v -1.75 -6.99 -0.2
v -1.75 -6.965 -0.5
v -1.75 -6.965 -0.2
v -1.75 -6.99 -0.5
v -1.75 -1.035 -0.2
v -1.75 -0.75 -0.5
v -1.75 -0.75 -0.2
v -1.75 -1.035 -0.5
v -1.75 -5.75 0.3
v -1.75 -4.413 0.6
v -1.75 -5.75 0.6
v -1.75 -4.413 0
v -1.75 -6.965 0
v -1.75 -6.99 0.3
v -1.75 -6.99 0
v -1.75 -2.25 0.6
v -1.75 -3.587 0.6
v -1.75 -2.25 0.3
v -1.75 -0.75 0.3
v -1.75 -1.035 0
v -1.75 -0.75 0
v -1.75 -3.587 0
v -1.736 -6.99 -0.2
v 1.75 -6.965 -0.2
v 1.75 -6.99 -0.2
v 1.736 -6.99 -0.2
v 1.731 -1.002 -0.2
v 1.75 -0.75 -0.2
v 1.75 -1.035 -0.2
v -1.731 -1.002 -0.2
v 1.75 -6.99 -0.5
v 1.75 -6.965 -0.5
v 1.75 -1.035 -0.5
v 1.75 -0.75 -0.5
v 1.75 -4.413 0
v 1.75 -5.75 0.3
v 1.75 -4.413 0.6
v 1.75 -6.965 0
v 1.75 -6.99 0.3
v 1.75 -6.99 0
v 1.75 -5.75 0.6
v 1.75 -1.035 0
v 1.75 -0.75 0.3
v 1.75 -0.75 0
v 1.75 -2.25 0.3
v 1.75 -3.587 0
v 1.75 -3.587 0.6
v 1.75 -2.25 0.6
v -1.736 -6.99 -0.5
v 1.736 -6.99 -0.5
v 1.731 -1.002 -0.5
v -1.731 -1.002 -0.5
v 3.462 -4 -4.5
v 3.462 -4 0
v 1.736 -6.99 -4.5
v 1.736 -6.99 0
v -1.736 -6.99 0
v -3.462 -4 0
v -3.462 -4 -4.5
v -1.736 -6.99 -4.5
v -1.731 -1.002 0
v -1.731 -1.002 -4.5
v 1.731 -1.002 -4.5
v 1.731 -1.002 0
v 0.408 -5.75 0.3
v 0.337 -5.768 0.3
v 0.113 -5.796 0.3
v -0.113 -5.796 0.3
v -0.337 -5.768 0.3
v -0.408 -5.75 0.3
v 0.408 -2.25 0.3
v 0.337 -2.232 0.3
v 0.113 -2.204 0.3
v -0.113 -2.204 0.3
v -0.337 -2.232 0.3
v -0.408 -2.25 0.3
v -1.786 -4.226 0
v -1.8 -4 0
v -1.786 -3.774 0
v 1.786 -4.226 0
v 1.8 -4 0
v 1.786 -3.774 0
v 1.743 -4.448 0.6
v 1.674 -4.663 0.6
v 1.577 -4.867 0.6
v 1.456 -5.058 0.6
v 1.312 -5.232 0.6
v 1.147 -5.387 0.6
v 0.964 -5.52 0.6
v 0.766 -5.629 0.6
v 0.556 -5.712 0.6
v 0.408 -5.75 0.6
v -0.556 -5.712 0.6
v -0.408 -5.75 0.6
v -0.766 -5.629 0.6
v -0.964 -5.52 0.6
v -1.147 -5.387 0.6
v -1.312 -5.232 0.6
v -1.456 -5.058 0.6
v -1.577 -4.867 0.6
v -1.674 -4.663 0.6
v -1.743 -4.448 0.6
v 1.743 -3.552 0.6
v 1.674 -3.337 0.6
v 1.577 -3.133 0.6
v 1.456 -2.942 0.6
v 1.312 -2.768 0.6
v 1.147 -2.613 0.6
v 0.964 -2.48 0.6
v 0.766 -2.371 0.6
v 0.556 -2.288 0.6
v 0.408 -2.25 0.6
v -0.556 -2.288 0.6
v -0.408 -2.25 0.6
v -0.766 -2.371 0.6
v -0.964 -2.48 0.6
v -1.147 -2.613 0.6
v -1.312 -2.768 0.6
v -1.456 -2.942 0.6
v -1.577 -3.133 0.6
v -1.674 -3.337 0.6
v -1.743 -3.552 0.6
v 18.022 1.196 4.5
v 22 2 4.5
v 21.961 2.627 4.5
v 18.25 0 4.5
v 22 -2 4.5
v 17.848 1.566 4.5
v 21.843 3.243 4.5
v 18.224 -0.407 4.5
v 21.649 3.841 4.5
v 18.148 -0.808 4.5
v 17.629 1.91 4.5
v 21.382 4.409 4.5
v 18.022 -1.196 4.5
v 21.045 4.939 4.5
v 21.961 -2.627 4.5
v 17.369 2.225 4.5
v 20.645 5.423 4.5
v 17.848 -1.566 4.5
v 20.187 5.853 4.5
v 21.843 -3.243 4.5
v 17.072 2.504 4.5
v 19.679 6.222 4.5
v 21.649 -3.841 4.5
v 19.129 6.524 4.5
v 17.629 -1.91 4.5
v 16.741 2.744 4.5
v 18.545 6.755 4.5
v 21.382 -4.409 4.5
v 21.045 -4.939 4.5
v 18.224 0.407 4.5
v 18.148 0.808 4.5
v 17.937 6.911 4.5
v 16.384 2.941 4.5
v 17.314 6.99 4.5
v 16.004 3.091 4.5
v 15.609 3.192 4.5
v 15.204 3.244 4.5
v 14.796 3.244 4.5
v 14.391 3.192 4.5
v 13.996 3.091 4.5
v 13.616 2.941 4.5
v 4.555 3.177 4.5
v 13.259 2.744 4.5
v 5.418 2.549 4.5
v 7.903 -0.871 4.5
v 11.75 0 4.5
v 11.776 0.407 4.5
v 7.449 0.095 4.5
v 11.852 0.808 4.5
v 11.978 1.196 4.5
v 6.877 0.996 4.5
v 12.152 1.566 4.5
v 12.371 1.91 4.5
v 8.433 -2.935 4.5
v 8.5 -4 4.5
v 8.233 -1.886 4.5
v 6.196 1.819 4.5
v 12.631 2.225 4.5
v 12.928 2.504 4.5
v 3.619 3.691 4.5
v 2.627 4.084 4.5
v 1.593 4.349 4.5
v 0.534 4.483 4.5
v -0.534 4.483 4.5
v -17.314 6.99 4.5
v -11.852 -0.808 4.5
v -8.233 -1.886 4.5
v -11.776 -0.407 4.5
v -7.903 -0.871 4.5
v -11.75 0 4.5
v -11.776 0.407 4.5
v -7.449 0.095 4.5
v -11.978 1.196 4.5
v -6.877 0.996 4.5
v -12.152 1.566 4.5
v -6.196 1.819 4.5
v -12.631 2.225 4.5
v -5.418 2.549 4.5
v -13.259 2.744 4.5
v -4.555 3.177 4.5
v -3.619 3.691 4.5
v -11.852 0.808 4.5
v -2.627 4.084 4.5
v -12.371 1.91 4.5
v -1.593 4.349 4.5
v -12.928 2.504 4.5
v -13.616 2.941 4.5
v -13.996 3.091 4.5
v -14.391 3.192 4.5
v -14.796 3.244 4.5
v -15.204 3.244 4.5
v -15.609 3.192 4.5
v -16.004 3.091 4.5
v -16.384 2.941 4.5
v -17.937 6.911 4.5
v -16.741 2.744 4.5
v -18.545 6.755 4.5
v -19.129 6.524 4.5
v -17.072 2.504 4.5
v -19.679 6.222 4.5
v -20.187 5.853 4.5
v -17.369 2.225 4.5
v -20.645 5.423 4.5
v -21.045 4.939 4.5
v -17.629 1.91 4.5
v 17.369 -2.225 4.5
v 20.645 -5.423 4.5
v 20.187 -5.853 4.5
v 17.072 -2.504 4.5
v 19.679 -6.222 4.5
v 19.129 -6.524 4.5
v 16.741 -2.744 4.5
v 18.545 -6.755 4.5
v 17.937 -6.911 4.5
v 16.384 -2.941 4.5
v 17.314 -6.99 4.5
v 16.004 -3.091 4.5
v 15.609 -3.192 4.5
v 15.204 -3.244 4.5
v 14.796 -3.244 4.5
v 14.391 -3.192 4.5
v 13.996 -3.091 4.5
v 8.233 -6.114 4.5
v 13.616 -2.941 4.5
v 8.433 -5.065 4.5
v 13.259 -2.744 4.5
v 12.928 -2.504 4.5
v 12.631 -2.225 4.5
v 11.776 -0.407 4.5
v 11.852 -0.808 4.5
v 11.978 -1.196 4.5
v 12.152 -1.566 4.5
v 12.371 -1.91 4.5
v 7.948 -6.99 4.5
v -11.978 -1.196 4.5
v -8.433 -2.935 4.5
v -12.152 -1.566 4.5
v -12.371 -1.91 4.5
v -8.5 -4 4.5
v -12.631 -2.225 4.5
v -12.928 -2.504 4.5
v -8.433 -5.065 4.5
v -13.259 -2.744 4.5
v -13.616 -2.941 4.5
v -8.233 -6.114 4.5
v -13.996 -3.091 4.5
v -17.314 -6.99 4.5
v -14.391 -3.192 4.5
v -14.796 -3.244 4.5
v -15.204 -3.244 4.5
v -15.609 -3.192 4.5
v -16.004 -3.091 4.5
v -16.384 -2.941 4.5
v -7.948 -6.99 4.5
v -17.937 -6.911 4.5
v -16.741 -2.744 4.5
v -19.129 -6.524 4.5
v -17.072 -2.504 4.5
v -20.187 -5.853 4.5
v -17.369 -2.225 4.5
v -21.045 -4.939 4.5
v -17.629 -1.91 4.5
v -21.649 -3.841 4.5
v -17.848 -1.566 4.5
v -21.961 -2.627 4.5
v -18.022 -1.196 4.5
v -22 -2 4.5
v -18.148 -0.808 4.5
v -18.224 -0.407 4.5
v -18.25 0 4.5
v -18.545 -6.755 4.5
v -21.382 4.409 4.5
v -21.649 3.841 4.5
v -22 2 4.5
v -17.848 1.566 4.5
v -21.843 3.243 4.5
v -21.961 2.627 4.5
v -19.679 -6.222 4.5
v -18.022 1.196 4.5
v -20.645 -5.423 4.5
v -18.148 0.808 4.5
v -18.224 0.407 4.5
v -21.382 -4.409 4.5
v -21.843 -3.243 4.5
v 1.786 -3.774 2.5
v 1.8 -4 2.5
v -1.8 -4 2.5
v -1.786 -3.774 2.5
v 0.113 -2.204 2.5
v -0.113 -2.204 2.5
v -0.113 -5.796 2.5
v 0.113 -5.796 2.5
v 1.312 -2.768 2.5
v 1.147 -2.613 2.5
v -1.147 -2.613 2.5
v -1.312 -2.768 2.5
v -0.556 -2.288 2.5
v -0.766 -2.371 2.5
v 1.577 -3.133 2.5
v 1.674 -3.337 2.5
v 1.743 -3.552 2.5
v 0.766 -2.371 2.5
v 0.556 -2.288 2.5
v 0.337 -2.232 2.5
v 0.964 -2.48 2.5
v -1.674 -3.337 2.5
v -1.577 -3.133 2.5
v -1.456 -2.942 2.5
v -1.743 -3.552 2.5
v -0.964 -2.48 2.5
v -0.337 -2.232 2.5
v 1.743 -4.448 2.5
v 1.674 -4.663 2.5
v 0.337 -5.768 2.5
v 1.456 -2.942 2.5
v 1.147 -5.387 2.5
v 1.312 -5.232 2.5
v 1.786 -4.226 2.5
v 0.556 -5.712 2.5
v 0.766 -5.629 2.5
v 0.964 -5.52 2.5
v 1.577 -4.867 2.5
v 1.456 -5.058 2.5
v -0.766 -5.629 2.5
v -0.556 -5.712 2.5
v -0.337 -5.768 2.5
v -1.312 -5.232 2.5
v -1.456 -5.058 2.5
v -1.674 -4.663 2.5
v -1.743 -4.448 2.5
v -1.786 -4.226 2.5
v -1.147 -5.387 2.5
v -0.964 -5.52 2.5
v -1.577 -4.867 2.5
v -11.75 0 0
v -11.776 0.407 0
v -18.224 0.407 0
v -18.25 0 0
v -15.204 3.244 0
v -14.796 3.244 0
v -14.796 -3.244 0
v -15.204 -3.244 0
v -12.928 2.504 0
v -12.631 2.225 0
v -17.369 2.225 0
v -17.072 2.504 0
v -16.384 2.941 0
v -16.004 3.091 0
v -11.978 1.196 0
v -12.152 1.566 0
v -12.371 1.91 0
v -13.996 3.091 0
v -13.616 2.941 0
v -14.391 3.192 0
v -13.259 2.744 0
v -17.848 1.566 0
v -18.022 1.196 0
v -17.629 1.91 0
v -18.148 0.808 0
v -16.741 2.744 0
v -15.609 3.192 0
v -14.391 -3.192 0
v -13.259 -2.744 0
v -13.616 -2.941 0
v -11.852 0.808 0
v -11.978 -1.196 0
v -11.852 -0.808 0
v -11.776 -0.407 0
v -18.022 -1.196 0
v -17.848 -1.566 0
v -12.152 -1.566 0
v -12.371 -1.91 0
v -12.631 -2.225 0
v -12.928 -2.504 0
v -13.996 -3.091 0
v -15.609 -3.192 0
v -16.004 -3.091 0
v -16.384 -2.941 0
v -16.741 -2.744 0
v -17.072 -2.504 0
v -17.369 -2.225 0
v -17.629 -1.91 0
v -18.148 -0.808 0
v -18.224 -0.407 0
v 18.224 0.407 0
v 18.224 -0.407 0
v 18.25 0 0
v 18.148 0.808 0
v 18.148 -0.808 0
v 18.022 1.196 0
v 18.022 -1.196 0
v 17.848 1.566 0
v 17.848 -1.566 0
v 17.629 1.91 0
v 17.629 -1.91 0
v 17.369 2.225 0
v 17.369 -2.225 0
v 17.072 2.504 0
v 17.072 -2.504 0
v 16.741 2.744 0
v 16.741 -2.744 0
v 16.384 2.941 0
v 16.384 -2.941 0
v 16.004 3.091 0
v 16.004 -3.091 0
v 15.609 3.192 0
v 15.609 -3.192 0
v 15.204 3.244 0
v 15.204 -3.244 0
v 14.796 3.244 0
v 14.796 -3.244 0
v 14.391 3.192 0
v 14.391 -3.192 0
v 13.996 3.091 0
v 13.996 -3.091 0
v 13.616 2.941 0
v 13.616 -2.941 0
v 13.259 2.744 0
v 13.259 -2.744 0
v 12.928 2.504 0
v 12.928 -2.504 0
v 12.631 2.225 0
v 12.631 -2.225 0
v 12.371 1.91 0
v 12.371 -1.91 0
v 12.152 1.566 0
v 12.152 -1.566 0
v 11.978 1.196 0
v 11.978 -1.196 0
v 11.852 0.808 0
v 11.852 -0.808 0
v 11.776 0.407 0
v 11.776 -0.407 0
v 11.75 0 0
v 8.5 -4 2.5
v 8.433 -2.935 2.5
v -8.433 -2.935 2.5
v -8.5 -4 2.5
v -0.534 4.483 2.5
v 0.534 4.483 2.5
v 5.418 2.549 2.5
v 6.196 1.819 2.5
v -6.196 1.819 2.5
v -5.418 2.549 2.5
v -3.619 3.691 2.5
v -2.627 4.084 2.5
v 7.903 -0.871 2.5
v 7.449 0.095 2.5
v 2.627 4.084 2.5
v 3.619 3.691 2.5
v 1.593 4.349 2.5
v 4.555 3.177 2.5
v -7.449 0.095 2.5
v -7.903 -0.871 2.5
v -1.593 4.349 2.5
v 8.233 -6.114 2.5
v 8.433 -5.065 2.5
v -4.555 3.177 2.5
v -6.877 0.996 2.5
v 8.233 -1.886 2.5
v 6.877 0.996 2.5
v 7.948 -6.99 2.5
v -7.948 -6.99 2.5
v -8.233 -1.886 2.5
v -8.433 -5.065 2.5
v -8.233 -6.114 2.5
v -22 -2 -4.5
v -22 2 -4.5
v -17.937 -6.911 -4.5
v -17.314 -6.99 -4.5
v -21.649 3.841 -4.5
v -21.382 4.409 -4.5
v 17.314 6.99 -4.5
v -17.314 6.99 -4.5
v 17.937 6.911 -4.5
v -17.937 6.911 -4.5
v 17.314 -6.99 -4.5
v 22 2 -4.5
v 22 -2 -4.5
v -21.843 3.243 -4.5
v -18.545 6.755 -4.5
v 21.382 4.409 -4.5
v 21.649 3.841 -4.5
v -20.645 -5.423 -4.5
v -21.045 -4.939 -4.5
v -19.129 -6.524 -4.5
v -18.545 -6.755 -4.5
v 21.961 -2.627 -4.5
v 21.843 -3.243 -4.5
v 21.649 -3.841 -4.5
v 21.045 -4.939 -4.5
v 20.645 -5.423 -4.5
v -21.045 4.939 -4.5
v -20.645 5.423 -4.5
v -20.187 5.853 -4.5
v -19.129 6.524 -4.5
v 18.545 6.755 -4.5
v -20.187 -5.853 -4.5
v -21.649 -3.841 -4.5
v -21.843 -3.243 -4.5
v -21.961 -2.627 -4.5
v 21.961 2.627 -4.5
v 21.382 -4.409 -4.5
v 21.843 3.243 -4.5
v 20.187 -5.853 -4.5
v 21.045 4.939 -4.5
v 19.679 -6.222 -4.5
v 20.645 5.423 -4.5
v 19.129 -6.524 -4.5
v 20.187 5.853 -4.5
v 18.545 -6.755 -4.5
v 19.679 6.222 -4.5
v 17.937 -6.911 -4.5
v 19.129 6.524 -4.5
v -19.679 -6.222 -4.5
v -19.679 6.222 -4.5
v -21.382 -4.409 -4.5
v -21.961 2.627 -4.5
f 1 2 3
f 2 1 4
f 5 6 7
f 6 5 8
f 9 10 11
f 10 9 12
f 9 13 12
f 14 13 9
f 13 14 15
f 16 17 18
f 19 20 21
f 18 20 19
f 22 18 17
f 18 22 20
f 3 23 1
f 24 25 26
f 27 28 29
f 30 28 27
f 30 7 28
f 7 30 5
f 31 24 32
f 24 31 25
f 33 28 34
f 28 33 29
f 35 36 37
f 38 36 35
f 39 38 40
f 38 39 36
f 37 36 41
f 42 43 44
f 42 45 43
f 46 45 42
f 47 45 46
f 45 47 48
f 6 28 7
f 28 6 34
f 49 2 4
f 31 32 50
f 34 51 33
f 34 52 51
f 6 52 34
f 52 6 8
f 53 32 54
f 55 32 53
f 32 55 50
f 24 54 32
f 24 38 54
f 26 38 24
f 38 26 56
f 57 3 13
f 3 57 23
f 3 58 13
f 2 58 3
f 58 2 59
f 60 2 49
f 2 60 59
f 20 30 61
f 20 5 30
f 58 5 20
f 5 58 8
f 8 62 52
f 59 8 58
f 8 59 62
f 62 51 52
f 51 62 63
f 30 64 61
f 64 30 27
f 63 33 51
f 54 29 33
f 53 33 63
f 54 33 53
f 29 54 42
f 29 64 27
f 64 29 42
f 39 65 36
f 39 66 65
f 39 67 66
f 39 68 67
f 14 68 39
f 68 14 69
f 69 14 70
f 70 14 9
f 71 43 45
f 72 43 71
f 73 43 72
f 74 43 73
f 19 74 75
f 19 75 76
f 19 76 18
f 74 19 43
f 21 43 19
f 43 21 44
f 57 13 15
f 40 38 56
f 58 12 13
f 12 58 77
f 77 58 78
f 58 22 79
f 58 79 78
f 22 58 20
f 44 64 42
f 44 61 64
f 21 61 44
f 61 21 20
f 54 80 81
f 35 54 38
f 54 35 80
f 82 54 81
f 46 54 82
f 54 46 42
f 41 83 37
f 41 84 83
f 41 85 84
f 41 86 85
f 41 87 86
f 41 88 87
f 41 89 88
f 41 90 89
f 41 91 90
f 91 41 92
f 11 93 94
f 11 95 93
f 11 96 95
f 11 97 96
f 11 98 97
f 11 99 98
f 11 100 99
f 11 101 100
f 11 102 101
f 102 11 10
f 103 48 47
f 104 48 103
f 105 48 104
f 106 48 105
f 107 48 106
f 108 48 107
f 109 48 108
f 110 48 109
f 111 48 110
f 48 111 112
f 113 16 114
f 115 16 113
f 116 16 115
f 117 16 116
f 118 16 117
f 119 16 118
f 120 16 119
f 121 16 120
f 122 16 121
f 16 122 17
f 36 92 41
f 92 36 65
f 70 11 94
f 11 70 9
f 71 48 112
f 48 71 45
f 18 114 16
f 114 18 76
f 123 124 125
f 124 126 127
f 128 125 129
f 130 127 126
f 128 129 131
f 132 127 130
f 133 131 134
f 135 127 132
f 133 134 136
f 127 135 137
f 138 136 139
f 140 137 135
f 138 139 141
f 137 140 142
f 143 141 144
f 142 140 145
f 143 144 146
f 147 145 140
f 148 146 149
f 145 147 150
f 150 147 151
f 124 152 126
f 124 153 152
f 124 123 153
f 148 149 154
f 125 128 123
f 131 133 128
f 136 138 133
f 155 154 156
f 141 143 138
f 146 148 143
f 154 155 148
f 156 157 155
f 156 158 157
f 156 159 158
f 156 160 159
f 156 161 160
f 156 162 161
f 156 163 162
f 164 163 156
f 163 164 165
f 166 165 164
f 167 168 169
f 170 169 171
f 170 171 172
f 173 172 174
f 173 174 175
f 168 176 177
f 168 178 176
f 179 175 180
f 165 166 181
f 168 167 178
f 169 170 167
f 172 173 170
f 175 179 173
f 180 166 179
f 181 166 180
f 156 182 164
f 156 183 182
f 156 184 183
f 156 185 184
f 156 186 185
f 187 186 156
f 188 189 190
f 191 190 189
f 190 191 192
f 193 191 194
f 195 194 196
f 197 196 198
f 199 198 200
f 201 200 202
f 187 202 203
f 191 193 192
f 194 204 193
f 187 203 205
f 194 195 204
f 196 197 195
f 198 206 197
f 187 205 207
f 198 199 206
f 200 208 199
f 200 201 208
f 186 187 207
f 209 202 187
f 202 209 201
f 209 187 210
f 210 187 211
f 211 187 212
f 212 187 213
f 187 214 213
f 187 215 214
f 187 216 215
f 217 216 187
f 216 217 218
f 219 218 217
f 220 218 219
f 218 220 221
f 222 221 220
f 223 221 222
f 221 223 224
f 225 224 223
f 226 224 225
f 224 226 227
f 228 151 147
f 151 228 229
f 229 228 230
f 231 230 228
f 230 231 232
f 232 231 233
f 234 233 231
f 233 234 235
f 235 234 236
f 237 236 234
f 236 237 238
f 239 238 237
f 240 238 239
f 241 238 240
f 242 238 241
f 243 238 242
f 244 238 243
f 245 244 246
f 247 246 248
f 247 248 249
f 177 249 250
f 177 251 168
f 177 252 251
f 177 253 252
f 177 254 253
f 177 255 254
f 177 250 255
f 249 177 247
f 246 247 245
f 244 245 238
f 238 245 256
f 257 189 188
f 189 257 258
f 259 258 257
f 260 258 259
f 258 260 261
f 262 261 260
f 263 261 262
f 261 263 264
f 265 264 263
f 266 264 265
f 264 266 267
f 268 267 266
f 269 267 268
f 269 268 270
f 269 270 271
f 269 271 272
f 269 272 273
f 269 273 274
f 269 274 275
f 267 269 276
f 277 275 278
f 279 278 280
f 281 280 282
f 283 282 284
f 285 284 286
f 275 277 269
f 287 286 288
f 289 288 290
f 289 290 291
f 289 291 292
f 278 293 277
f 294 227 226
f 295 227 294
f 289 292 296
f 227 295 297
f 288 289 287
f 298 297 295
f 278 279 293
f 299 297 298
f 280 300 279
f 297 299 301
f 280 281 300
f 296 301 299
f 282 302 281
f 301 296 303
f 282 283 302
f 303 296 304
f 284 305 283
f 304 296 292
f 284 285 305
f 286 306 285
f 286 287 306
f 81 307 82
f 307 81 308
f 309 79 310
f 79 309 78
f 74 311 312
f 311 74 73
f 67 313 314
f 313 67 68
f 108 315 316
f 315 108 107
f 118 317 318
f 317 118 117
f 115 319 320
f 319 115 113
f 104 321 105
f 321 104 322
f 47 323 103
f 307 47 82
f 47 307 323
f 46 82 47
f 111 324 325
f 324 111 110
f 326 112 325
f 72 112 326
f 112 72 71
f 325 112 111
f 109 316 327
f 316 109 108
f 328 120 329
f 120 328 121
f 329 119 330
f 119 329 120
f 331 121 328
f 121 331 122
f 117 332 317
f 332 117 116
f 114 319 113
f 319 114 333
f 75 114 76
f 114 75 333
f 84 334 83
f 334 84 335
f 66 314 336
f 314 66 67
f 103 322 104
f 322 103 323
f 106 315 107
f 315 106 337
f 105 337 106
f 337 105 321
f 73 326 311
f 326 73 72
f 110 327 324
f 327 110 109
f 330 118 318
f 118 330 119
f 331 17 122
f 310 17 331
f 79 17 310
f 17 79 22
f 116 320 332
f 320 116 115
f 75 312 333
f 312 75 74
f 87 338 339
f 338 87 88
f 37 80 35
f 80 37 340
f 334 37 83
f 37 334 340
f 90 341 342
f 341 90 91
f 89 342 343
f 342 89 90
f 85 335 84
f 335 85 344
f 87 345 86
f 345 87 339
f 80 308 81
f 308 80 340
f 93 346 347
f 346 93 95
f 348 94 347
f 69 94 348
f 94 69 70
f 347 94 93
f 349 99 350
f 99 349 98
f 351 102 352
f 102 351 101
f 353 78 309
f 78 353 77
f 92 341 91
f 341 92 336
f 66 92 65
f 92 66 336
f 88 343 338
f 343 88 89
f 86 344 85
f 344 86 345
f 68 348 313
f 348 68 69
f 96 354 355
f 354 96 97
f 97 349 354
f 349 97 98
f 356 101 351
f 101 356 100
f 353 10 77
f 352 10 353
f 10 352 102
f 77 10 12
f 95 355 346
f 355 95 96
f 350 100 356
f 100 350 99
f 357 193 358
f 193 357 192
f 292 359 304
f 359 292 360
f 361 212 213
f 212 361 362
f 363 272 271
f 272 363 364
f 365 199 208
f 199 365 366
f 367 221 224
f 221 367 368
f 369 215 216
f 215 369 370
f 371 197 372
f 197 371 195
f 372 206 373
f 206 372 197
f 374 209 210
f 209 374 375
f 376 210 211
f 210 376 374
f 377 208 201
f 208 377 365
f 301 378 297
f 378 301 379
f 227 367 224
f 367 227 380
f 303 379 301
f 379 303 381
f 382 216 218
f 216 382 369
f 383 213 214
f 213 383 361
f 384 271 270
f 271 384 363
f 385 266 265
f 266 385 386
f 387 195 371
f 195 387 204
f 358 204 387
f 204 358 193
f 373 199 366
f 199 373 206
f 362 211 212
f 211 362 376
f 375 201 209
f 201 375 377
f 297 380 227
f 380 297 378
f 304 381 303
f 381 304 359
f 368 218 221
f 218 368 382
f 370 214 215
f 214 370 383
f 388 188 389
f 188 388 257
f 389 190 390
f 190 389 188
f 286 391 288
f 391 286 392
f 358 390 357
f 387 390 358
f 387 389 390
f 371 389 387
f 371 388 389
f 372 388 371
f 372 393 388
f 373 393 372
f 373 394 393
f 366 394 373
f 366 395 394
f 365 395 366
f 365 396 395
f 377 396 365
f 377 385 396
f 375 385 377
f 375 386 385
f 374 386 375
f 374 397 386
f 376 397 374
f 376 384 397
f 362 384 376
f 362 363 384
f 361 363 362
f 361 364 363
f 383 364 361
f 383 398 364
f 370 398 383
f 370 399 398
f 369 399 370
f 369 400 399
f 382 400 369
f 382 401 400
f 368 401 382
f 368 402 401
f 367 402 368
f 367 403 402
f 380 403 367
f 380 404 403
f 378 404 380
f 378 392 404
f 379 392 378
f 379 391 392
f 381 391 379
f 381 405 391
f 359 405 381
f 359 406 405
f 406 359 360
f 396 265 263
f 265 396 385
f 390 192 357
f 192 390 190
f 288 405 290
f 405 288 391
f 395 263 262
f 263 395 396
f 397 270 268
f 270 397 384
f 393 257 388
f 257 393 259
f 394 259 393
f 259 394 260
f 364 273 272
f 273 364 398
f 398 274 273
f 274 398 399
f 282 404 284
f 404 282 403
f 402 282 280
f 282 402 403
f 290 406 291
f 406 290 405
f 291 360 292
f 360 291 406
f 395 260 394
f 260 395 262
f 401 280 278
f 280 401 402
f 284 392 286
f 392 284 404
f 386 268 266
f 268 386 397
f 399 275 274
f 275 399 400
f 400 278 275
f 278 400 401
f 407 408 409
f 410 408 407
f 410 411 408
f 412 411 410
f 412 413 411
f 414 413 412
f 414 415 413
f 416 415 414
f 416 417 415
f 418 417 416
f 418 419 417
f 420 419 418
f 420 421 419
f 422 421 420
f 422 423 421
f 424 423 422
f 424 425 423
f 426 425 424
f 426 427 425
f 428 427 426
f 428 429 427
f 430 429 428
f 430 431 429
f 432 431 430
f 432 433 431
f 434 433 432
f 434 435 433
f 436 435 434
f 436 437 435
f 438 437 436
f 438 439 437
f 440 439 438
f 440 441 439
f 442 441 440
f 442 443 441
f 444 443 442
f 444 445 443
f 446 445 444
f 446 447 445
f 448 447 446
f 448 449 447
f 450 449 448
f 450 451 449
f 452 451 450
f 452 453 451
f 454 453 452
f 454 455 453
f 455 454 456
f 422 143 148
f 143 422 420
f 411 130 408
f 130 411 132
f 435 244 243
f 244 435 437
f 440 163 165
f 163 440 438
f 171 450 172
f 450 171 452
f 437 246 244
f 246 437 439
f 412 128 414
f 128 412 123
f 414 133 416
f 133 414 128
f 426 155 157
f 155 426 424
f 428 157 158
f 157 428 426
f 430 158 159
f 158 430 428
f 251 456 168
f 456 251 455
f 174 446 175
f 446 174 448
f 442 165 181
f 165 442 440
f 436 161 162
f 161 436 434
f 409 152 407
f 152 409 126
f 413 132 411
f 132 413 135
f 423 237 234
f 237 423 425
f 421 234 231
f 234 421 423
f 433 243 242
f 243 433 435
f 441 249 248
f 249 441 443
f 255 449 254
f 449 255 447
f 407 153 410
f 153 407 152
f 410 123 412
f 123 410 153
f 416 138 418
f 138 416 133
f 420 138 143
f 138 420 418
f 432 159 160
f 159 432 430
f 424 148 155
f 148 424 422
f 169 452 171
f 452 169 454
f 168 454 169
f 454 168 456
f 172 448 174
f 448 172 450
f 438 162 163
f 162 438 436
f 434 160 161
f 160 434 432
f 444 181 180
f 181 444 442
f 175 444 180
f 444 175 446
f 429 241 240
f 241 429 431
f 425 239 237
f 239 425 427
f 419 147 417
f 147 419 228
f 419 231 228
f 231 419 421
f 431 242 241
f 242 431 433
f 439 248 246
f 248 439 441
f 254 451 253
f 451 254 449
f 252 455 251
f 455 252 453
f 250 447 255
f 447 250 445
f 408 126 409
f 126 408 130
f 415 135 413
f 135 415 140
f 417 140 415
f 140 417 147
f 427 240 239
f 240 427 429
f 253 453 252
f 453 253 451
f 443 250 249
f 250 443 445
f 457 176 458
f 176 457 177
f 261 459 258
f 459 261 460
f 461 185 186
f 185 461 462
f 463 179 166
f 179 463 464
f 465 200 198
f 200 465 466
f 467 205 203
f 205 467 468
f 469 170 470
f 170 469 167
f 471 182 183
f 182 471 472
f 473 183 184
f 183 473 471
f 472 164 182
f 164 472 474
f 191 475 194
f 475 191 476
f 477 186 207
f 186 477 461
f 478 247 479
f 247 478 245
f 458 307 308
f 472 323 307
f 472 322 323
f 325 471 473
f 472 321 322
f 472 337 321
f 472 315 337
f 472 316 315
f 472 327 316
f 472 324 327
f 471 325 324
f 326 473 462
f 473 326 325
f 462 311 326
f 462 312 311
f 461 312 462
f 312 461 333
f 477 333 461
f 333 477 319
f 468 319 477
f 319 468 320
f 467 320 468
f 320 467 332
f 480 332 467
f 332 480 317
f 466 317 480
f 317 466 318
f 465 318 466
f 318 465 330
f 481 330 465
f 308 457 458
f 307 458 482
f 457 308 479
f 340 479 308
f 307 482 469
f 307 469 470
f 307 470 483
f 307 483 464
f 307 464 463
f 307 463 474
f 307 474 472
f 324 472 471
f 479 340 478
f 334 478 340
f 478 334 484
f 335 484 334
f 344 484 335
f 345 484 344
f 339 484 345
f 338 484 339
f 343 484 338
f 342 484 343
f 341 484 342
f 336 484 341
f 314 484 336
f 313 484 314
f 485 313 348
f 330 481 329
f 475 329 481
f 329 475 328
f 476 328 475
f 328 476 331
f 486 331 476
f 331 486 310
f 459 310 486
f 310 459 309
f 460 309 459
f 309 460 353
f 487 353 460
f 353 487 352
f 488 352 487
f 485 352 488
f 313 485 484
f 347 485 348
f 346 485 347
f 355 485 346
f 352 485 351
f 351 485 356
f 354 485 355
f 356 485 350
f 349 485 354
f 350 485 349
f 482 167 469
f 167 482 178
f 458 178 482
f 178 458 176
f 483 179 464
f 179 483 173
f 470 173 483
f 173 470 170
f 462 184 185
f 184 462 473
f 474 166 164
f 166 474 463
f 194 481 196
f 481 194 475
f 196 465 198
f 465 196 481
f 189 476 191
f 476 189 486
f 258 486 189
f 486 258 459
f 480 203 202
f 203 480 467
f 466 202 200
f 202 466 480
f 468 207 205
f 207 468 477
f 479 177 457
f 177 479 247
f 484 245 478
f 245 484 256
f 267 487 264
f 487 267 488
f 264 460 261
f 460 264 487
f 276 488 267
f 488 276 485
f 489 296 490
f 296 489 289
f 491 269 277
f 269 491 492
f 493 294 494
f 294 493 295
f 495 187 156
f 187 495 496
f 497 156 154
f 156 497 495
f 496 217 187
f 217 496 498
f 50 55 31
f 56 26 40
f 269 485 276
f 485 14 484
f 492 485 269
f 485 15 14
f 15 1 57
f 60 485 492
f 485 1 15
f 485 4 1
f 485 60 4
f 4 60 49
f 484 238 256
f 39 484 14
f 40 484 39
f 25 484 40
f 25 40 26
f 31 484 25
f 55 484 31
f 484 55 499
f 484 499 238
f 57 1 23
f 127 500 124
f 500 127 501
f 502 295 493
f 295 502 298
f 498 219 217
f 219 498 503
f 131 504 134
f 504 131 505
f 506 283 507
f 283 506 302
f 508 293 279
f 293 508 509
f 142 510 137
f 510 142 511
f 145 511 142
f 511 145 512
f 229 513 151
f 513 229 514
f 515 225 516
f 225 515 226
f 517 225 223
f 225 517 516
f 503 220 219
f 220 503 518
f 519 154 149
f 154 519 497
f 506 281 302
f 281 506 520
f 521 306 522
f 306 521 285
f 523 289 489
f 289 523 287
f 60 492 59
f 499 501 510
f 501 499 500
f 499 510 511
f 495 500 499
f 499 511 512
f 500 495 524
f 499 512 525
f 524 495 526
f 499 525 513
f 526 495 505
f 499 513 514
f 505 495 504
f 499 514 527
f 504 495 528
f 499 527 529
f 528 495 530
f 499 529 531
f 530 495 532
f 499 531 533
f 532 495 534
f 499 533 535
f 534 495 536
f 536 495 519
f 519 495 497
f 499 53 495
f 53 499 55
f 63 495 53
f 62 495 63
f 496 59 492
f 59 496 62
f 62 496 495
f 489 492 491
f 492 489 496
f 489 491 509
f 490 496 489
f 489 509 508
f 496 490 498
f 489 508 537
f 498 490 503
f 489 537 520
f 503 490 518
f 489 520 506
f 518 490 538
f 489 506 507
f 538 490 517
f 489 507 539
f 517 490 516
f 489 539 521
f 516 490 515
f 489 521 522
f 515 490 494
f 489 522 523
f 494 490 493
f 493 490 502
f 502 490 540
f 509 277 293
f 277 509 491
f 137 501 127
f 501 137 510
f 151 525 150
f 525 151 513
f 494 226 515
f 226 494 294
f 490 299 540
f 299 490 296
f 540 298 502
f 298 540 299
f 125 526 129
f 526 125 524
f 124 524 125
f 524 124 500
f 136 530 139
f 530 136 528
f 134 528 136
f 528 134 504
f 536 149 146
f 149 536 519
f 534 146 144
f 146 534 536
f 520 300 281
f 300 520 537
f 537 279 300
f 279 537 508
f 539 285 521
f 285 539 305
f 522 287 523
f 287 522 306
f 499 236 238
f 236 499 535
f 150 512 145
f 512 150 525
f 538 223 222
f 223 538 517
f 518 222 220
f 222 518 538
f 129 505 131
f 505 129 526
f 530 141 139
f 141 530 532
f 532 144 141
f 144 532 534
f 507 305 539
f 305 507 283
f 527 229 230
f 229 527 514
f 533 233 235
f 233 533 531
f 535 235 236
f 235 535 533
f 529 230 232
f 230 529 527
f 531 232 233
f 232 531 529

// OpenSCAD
$fn = 50;


difference() {
	union() {
		translate(v = [0, 0, -4.5000000000]) {
			hull() {
				translate(v = [-17.0000000000, 2.0000000000, 0]) {
					cylinder(h = 9, r = 5);
				}
				translate(v = [17.0000000000, 2.0000000000, 0]) {
					cylinder(h = 9, r = 5);
				}
				translate(v = [-17.0000000000, -2.0000000000, 0]) {
					cylinder(h = 9, r = 5);
				}
				translate(v = [17.0000000000, -2.0000000000, 0]) {
					cylinder(h = 9, r = 5);
				}
			}
		}
	}
	union() {
		translate(v = [0, -4, 4.5000000000]) {
			rotate(a = [0, 0, 0]) {
				difference() {
					union() {
						translate(v = [0, 0, -5.0000000000]) {
							rotate(a = [0, 0, 0]) {
								difference() {
									union() {
										translate(v = [-1.7500000000, -3.2500000000, -250.3000000000]) {
											cube(size = [3.5000000000, 6.5000000000, 0.3000000000]);
										}
										translate(v = [-1.7500000000, -1.7500000000, -250.6000000000]) {
											cube(size = [3.5000000000, 3.5000000000, 0.3000000000]);
										}
										translate(v = [-1.7500000000, -3.2500000000, 0]) {
											cube(size = [3.5000000000, 6.5000000000, 0.3000000000]);
										}
										translate(v = [-1.7500000000, -1.7500000000, 0.3000000000]) {
											cube(size = [3.5000000000, 3.5000000000, 0.3000000000]);
										}
										translate(v = [0, 0, -250]) {
											linear_extrude(height = 250) {
												polygon(points = [[3.4620000000, 0.0000000000], [1.7310000000, 2.9981799479], [-1.7310000000, 2.9981799479], [-3.4620000000, 0.0000000000], [-1.7310000000, -2.9981799479], [1.7310000000, -2.9981799479]]);
											}
										}
										translate(v = [-1.7500000000, -3.2500000000, -250.3000000000]) {
											cube(size = [3.5000000000, 6.5000000000, 0.3000000000]);
										}
										translate(v = [-1.7500000000, -1.7500000000, -250.6000000000]) {
											cube(size = [3.5000000000, 3.5000000000, 0.3000000000]);
										}
										translate(v = [-1.7500000000, -3.2500000000, 0]) {
											cube(size = [3.5000000000, 6.5000000000, 0.3000000000]);
										}
										translate(v = [-1.7500000000, -1.7500000000, 0.3000000000]) {
											cube(size = [3.5000000000, 3.5000000000, 0.3000000000]);
										}
										translate(v = [-1.7500000000, -3.2500000000, -250.3000000000]) {
											cube(size = [3.5000000000, 6.5000000000, 0.3000000000]);
										}
										translate(v = [-1.7500000000, -1.7500000000, -250.6000000000]) {
											cube(size = [3.5000000000, 3.5000000000, 0.3000000000]);
										}
										translate(v = [-1.7500000000, -3.2500000000, 0]) {
											cube(size = [3.5000000000, 6.5000000000, 0.3000000000]);
										}
										translate(v = [-1.7500000000, -1.7500000000, 0.3000000000]) {
											cube(size = [3.5000000000, 3.5000000000, 0.3000000000]);
										}
									}
									union();
								}
							}
						}
						translate(v = [0, 0, -4.5000000000]) {
							rotate(a = [0, 0, 0]) {
								difference() {
									union() {
										translate(v = [-1.7500000000, -3.2500000000, -250.3000000000]) {
											cube(size = [3.5000000000, 6.5000000000, 0.3000000000]);
										}
										translate(v = [-1.7500000000, -1.7500000000, -250.6000000000]) {
											cube(size = [3.5000000000, 3.5000000000, 0.3000000000]);
										}
										translate(v = [-1.7500000000, -3.2500000000, 0]) {
											cube(size = [3.5000000000, 6.5000000000, 0.3000000000]);
										}
										translate(v = [-1.7500000000, -1.7500000000, 0.3000000000]) {
											cube(size = [3.5000000000, 3.5000000000, 0.3000000000]);
										}
										translate(v = [0, 0, -250]) {
											linear_extrude(height = 250) {
												polygon(points = [[3.4620000000, 0.0000000000], [1.7310000000, 2.9981799479], [-1.7310000000, 2.9981799479], [-3.4620000000, 0.0000000000], [-1.7310000000, -2.9981799479], [1.7310000000, -2.9981799479]]);
											}
										}
										translate(v = [-1.7500000000, -3.2500000000, -250.3000000000]) {
											cube(size = [3.5000000000, 6.5000000000, 0.3000000000]);
										}
										translate(v = [-1.7500000000, -1.7500000000, -250.6000000000]) {
											cube(size = [3.5000000000, 3.5000000000, 0.3000000000]);
										}
										translate(v = [-1.7500000000, -3.2500000000, 0]) {
											cube(size = [3.5000000000, 6.5000000000, 0.3000000000]);
										}
										translate(v = [-1.7500000000, -1.7500000000, 0.3000000000]) {
											cube(size = [3.5000000000, 3.5000000000, 0.3000000000]);
										}
										translate(v = [-1.7500000000, -3.2500000000, -250.3000000000]) {
											cube(size = [3.5000000000, 6.5000000000, 0.3000000000]);
										}
										translate(v = [-1.7500000000, -1.7500000000, -250.6000000000]) {
											cube(size = [3.5000000000, 3.5000000000, 0.3000000000]);
										}
										translate(v = [-1.7500000000, -3.2500000000, 0]) {
											cube(size = [3.5000000000, 6.5000000000, 0.3000000000]);
										}
										translate(v = [-1.7500000000, -1.7500000000, 0.3000000000]) {
											cube(size = [3.5000000000, 3.5000000000, 0.3000000000]);
										}
									}
									union();
								}
							}
						}
						translate(v = [0, 0, -5.0000000000]) {
							rotate(a = [0, 0, 0]) {
								difference() {
									union() {
										translate(v = [-1.7500000000, -3.2500000000, -250.3000000000]) {
											cube(size = [3.5000000000, 6.5000000000, 0.3000000000]);
										}
										translate(v = [-1.7500000000, -1.7500000000, -250.6000000000]) {
											cube(size = [3.5000000000, 3.5000000000, 0.3000000000]);
										}
										translate(v = [-1.7500000000, -3.2500000000, 0]) {
											cube(size = [3.5000000000, 6.5000000000, 0.3000000000]);
										}
										translate(v = [-1.7500000000, -1.7500000000, 0.3000000000]) {
											cube(size = [3.5000000000, 3.5000000000, 0.3000000000]);
										}
										translate(v = [0, 0, -250]) {
											linear_extrude(height = 250) {
												polygon(points = [[3.4620000000, 0.0000000000], [1.7310000000, 2.9981799479], [-1.7310000000, 2.9981799479], [-3.4620000000, 0.0000000000], [-1.7310000000, -2.9981799479], [1.7310000000, -2.9981799479]]);
											}
										}
										translate(v = [-1.7500000000, -3.2500000000, -250.3000000000]) {
											cube(size = [3.5000000000, 6.5000000000, 0.3000000000]);
										}
										translate(v = [-1.7500000000, -1.7500000000, -250.6000000000]) {
											cube(size = [3.5000000000, 3.5000000000, 0.3000000000]);
										}
										translate(v = [-1.7500000000, -3.2500000000, 0]) {
											cube(size = [3.5000000000, 6.5000000000, 0.3000000000]);
										}
										translate(v = [-1.7500000000, -1.7500000000, 0.3000000000]) {
											cube(size = [3.5000000000, 3.5000000000, 0.3000000000]);
										}
										translate(v = [-1.7500000000, -3.2500000000, -250.3000000000]) {
											cube(size = [3.5000000000, 6.5000000000, 0.3000000000]);
										}
										translate(v = [-1.7500000000, -1.7500000000, -250.6000000000]) {
											cube(size = [3.5000000000, 3.5000000000, 0.3000000000]);
										}
										translate(v = [-1.7500000000, -3.2500000000, 0]) {
											cube(size = [3.5000000000, 6.5000000000, 0.3000000000]);
										}
										translate(v = [-1.7500000000, -1.7500000000, 0.3000000000]) {
											cube(size = [3.5000000000, 3.5000000000, 0.3000000000]);
										}
									}
									union();
								}
							}
						}
						translate(v = [0, 0, -7.5000000000]) {
							cylinder(h = 7.5000000000, r = 1.5000000000);
						}
						translate(v = [0, 0, -1.9000000000]) {
							cylinder(h = 1.9000000000, r1 = 1.8000000000, r2 = 3.6000000000);
						}
						translate(v = [0, 0, -7.5000000000]) {
							cylinder(h = 7.5000000000, r = 1.8000000000);
						}
						translate(v = [0, 0, -7.5000000000]) {
							cylinder(h = 7.5000000000, r = 1.5000000000);
						}
					}
					union();
				}
			}
		}
		translate(v = [-15.0000000000, 0.0000000000, 0]) {
			cylinder(h = 9, r = 3.2500000000);
		}
		translate(v = [15.0000000000, 0.0000000000, 0]) {
			cylinder(h = 9, r = 3.2500000000);
		}
		translate(v = [-15.0000000000, 0.0000000000, 0]) {
			cylinder(h = 9, r = 1.8000000000);
		}
		translate(v = [15.0000000000, 0.0000000000, 0]) {
			cylinder(h = 9, r = 1.8000000000);
		}
		translate(v = [-15.0000000000, 0.0000000000, 0]) {
			cylinder(h = 9, r = 1.8000000000);
		}
		translate(v = [15.0000000000, 0.0000000000, 0]) {
			cylinder(h = 9, r = 1.8000000000);
		}
		translate(v = [-15.0000000000, 0.0000000000, 0]) {
			cylinder(h = 9, r = 1.8000000000);
		}
		translate(v = [15.0000000000, 0.0000000000, 0]) {
			cylinder(h = 9, r = 1.8000000000);
		}
		translate(v = [0, -4, 2.5000000000]) {
			cylinder(h = 2, r = 8.5000000000);
		}
	}
}
